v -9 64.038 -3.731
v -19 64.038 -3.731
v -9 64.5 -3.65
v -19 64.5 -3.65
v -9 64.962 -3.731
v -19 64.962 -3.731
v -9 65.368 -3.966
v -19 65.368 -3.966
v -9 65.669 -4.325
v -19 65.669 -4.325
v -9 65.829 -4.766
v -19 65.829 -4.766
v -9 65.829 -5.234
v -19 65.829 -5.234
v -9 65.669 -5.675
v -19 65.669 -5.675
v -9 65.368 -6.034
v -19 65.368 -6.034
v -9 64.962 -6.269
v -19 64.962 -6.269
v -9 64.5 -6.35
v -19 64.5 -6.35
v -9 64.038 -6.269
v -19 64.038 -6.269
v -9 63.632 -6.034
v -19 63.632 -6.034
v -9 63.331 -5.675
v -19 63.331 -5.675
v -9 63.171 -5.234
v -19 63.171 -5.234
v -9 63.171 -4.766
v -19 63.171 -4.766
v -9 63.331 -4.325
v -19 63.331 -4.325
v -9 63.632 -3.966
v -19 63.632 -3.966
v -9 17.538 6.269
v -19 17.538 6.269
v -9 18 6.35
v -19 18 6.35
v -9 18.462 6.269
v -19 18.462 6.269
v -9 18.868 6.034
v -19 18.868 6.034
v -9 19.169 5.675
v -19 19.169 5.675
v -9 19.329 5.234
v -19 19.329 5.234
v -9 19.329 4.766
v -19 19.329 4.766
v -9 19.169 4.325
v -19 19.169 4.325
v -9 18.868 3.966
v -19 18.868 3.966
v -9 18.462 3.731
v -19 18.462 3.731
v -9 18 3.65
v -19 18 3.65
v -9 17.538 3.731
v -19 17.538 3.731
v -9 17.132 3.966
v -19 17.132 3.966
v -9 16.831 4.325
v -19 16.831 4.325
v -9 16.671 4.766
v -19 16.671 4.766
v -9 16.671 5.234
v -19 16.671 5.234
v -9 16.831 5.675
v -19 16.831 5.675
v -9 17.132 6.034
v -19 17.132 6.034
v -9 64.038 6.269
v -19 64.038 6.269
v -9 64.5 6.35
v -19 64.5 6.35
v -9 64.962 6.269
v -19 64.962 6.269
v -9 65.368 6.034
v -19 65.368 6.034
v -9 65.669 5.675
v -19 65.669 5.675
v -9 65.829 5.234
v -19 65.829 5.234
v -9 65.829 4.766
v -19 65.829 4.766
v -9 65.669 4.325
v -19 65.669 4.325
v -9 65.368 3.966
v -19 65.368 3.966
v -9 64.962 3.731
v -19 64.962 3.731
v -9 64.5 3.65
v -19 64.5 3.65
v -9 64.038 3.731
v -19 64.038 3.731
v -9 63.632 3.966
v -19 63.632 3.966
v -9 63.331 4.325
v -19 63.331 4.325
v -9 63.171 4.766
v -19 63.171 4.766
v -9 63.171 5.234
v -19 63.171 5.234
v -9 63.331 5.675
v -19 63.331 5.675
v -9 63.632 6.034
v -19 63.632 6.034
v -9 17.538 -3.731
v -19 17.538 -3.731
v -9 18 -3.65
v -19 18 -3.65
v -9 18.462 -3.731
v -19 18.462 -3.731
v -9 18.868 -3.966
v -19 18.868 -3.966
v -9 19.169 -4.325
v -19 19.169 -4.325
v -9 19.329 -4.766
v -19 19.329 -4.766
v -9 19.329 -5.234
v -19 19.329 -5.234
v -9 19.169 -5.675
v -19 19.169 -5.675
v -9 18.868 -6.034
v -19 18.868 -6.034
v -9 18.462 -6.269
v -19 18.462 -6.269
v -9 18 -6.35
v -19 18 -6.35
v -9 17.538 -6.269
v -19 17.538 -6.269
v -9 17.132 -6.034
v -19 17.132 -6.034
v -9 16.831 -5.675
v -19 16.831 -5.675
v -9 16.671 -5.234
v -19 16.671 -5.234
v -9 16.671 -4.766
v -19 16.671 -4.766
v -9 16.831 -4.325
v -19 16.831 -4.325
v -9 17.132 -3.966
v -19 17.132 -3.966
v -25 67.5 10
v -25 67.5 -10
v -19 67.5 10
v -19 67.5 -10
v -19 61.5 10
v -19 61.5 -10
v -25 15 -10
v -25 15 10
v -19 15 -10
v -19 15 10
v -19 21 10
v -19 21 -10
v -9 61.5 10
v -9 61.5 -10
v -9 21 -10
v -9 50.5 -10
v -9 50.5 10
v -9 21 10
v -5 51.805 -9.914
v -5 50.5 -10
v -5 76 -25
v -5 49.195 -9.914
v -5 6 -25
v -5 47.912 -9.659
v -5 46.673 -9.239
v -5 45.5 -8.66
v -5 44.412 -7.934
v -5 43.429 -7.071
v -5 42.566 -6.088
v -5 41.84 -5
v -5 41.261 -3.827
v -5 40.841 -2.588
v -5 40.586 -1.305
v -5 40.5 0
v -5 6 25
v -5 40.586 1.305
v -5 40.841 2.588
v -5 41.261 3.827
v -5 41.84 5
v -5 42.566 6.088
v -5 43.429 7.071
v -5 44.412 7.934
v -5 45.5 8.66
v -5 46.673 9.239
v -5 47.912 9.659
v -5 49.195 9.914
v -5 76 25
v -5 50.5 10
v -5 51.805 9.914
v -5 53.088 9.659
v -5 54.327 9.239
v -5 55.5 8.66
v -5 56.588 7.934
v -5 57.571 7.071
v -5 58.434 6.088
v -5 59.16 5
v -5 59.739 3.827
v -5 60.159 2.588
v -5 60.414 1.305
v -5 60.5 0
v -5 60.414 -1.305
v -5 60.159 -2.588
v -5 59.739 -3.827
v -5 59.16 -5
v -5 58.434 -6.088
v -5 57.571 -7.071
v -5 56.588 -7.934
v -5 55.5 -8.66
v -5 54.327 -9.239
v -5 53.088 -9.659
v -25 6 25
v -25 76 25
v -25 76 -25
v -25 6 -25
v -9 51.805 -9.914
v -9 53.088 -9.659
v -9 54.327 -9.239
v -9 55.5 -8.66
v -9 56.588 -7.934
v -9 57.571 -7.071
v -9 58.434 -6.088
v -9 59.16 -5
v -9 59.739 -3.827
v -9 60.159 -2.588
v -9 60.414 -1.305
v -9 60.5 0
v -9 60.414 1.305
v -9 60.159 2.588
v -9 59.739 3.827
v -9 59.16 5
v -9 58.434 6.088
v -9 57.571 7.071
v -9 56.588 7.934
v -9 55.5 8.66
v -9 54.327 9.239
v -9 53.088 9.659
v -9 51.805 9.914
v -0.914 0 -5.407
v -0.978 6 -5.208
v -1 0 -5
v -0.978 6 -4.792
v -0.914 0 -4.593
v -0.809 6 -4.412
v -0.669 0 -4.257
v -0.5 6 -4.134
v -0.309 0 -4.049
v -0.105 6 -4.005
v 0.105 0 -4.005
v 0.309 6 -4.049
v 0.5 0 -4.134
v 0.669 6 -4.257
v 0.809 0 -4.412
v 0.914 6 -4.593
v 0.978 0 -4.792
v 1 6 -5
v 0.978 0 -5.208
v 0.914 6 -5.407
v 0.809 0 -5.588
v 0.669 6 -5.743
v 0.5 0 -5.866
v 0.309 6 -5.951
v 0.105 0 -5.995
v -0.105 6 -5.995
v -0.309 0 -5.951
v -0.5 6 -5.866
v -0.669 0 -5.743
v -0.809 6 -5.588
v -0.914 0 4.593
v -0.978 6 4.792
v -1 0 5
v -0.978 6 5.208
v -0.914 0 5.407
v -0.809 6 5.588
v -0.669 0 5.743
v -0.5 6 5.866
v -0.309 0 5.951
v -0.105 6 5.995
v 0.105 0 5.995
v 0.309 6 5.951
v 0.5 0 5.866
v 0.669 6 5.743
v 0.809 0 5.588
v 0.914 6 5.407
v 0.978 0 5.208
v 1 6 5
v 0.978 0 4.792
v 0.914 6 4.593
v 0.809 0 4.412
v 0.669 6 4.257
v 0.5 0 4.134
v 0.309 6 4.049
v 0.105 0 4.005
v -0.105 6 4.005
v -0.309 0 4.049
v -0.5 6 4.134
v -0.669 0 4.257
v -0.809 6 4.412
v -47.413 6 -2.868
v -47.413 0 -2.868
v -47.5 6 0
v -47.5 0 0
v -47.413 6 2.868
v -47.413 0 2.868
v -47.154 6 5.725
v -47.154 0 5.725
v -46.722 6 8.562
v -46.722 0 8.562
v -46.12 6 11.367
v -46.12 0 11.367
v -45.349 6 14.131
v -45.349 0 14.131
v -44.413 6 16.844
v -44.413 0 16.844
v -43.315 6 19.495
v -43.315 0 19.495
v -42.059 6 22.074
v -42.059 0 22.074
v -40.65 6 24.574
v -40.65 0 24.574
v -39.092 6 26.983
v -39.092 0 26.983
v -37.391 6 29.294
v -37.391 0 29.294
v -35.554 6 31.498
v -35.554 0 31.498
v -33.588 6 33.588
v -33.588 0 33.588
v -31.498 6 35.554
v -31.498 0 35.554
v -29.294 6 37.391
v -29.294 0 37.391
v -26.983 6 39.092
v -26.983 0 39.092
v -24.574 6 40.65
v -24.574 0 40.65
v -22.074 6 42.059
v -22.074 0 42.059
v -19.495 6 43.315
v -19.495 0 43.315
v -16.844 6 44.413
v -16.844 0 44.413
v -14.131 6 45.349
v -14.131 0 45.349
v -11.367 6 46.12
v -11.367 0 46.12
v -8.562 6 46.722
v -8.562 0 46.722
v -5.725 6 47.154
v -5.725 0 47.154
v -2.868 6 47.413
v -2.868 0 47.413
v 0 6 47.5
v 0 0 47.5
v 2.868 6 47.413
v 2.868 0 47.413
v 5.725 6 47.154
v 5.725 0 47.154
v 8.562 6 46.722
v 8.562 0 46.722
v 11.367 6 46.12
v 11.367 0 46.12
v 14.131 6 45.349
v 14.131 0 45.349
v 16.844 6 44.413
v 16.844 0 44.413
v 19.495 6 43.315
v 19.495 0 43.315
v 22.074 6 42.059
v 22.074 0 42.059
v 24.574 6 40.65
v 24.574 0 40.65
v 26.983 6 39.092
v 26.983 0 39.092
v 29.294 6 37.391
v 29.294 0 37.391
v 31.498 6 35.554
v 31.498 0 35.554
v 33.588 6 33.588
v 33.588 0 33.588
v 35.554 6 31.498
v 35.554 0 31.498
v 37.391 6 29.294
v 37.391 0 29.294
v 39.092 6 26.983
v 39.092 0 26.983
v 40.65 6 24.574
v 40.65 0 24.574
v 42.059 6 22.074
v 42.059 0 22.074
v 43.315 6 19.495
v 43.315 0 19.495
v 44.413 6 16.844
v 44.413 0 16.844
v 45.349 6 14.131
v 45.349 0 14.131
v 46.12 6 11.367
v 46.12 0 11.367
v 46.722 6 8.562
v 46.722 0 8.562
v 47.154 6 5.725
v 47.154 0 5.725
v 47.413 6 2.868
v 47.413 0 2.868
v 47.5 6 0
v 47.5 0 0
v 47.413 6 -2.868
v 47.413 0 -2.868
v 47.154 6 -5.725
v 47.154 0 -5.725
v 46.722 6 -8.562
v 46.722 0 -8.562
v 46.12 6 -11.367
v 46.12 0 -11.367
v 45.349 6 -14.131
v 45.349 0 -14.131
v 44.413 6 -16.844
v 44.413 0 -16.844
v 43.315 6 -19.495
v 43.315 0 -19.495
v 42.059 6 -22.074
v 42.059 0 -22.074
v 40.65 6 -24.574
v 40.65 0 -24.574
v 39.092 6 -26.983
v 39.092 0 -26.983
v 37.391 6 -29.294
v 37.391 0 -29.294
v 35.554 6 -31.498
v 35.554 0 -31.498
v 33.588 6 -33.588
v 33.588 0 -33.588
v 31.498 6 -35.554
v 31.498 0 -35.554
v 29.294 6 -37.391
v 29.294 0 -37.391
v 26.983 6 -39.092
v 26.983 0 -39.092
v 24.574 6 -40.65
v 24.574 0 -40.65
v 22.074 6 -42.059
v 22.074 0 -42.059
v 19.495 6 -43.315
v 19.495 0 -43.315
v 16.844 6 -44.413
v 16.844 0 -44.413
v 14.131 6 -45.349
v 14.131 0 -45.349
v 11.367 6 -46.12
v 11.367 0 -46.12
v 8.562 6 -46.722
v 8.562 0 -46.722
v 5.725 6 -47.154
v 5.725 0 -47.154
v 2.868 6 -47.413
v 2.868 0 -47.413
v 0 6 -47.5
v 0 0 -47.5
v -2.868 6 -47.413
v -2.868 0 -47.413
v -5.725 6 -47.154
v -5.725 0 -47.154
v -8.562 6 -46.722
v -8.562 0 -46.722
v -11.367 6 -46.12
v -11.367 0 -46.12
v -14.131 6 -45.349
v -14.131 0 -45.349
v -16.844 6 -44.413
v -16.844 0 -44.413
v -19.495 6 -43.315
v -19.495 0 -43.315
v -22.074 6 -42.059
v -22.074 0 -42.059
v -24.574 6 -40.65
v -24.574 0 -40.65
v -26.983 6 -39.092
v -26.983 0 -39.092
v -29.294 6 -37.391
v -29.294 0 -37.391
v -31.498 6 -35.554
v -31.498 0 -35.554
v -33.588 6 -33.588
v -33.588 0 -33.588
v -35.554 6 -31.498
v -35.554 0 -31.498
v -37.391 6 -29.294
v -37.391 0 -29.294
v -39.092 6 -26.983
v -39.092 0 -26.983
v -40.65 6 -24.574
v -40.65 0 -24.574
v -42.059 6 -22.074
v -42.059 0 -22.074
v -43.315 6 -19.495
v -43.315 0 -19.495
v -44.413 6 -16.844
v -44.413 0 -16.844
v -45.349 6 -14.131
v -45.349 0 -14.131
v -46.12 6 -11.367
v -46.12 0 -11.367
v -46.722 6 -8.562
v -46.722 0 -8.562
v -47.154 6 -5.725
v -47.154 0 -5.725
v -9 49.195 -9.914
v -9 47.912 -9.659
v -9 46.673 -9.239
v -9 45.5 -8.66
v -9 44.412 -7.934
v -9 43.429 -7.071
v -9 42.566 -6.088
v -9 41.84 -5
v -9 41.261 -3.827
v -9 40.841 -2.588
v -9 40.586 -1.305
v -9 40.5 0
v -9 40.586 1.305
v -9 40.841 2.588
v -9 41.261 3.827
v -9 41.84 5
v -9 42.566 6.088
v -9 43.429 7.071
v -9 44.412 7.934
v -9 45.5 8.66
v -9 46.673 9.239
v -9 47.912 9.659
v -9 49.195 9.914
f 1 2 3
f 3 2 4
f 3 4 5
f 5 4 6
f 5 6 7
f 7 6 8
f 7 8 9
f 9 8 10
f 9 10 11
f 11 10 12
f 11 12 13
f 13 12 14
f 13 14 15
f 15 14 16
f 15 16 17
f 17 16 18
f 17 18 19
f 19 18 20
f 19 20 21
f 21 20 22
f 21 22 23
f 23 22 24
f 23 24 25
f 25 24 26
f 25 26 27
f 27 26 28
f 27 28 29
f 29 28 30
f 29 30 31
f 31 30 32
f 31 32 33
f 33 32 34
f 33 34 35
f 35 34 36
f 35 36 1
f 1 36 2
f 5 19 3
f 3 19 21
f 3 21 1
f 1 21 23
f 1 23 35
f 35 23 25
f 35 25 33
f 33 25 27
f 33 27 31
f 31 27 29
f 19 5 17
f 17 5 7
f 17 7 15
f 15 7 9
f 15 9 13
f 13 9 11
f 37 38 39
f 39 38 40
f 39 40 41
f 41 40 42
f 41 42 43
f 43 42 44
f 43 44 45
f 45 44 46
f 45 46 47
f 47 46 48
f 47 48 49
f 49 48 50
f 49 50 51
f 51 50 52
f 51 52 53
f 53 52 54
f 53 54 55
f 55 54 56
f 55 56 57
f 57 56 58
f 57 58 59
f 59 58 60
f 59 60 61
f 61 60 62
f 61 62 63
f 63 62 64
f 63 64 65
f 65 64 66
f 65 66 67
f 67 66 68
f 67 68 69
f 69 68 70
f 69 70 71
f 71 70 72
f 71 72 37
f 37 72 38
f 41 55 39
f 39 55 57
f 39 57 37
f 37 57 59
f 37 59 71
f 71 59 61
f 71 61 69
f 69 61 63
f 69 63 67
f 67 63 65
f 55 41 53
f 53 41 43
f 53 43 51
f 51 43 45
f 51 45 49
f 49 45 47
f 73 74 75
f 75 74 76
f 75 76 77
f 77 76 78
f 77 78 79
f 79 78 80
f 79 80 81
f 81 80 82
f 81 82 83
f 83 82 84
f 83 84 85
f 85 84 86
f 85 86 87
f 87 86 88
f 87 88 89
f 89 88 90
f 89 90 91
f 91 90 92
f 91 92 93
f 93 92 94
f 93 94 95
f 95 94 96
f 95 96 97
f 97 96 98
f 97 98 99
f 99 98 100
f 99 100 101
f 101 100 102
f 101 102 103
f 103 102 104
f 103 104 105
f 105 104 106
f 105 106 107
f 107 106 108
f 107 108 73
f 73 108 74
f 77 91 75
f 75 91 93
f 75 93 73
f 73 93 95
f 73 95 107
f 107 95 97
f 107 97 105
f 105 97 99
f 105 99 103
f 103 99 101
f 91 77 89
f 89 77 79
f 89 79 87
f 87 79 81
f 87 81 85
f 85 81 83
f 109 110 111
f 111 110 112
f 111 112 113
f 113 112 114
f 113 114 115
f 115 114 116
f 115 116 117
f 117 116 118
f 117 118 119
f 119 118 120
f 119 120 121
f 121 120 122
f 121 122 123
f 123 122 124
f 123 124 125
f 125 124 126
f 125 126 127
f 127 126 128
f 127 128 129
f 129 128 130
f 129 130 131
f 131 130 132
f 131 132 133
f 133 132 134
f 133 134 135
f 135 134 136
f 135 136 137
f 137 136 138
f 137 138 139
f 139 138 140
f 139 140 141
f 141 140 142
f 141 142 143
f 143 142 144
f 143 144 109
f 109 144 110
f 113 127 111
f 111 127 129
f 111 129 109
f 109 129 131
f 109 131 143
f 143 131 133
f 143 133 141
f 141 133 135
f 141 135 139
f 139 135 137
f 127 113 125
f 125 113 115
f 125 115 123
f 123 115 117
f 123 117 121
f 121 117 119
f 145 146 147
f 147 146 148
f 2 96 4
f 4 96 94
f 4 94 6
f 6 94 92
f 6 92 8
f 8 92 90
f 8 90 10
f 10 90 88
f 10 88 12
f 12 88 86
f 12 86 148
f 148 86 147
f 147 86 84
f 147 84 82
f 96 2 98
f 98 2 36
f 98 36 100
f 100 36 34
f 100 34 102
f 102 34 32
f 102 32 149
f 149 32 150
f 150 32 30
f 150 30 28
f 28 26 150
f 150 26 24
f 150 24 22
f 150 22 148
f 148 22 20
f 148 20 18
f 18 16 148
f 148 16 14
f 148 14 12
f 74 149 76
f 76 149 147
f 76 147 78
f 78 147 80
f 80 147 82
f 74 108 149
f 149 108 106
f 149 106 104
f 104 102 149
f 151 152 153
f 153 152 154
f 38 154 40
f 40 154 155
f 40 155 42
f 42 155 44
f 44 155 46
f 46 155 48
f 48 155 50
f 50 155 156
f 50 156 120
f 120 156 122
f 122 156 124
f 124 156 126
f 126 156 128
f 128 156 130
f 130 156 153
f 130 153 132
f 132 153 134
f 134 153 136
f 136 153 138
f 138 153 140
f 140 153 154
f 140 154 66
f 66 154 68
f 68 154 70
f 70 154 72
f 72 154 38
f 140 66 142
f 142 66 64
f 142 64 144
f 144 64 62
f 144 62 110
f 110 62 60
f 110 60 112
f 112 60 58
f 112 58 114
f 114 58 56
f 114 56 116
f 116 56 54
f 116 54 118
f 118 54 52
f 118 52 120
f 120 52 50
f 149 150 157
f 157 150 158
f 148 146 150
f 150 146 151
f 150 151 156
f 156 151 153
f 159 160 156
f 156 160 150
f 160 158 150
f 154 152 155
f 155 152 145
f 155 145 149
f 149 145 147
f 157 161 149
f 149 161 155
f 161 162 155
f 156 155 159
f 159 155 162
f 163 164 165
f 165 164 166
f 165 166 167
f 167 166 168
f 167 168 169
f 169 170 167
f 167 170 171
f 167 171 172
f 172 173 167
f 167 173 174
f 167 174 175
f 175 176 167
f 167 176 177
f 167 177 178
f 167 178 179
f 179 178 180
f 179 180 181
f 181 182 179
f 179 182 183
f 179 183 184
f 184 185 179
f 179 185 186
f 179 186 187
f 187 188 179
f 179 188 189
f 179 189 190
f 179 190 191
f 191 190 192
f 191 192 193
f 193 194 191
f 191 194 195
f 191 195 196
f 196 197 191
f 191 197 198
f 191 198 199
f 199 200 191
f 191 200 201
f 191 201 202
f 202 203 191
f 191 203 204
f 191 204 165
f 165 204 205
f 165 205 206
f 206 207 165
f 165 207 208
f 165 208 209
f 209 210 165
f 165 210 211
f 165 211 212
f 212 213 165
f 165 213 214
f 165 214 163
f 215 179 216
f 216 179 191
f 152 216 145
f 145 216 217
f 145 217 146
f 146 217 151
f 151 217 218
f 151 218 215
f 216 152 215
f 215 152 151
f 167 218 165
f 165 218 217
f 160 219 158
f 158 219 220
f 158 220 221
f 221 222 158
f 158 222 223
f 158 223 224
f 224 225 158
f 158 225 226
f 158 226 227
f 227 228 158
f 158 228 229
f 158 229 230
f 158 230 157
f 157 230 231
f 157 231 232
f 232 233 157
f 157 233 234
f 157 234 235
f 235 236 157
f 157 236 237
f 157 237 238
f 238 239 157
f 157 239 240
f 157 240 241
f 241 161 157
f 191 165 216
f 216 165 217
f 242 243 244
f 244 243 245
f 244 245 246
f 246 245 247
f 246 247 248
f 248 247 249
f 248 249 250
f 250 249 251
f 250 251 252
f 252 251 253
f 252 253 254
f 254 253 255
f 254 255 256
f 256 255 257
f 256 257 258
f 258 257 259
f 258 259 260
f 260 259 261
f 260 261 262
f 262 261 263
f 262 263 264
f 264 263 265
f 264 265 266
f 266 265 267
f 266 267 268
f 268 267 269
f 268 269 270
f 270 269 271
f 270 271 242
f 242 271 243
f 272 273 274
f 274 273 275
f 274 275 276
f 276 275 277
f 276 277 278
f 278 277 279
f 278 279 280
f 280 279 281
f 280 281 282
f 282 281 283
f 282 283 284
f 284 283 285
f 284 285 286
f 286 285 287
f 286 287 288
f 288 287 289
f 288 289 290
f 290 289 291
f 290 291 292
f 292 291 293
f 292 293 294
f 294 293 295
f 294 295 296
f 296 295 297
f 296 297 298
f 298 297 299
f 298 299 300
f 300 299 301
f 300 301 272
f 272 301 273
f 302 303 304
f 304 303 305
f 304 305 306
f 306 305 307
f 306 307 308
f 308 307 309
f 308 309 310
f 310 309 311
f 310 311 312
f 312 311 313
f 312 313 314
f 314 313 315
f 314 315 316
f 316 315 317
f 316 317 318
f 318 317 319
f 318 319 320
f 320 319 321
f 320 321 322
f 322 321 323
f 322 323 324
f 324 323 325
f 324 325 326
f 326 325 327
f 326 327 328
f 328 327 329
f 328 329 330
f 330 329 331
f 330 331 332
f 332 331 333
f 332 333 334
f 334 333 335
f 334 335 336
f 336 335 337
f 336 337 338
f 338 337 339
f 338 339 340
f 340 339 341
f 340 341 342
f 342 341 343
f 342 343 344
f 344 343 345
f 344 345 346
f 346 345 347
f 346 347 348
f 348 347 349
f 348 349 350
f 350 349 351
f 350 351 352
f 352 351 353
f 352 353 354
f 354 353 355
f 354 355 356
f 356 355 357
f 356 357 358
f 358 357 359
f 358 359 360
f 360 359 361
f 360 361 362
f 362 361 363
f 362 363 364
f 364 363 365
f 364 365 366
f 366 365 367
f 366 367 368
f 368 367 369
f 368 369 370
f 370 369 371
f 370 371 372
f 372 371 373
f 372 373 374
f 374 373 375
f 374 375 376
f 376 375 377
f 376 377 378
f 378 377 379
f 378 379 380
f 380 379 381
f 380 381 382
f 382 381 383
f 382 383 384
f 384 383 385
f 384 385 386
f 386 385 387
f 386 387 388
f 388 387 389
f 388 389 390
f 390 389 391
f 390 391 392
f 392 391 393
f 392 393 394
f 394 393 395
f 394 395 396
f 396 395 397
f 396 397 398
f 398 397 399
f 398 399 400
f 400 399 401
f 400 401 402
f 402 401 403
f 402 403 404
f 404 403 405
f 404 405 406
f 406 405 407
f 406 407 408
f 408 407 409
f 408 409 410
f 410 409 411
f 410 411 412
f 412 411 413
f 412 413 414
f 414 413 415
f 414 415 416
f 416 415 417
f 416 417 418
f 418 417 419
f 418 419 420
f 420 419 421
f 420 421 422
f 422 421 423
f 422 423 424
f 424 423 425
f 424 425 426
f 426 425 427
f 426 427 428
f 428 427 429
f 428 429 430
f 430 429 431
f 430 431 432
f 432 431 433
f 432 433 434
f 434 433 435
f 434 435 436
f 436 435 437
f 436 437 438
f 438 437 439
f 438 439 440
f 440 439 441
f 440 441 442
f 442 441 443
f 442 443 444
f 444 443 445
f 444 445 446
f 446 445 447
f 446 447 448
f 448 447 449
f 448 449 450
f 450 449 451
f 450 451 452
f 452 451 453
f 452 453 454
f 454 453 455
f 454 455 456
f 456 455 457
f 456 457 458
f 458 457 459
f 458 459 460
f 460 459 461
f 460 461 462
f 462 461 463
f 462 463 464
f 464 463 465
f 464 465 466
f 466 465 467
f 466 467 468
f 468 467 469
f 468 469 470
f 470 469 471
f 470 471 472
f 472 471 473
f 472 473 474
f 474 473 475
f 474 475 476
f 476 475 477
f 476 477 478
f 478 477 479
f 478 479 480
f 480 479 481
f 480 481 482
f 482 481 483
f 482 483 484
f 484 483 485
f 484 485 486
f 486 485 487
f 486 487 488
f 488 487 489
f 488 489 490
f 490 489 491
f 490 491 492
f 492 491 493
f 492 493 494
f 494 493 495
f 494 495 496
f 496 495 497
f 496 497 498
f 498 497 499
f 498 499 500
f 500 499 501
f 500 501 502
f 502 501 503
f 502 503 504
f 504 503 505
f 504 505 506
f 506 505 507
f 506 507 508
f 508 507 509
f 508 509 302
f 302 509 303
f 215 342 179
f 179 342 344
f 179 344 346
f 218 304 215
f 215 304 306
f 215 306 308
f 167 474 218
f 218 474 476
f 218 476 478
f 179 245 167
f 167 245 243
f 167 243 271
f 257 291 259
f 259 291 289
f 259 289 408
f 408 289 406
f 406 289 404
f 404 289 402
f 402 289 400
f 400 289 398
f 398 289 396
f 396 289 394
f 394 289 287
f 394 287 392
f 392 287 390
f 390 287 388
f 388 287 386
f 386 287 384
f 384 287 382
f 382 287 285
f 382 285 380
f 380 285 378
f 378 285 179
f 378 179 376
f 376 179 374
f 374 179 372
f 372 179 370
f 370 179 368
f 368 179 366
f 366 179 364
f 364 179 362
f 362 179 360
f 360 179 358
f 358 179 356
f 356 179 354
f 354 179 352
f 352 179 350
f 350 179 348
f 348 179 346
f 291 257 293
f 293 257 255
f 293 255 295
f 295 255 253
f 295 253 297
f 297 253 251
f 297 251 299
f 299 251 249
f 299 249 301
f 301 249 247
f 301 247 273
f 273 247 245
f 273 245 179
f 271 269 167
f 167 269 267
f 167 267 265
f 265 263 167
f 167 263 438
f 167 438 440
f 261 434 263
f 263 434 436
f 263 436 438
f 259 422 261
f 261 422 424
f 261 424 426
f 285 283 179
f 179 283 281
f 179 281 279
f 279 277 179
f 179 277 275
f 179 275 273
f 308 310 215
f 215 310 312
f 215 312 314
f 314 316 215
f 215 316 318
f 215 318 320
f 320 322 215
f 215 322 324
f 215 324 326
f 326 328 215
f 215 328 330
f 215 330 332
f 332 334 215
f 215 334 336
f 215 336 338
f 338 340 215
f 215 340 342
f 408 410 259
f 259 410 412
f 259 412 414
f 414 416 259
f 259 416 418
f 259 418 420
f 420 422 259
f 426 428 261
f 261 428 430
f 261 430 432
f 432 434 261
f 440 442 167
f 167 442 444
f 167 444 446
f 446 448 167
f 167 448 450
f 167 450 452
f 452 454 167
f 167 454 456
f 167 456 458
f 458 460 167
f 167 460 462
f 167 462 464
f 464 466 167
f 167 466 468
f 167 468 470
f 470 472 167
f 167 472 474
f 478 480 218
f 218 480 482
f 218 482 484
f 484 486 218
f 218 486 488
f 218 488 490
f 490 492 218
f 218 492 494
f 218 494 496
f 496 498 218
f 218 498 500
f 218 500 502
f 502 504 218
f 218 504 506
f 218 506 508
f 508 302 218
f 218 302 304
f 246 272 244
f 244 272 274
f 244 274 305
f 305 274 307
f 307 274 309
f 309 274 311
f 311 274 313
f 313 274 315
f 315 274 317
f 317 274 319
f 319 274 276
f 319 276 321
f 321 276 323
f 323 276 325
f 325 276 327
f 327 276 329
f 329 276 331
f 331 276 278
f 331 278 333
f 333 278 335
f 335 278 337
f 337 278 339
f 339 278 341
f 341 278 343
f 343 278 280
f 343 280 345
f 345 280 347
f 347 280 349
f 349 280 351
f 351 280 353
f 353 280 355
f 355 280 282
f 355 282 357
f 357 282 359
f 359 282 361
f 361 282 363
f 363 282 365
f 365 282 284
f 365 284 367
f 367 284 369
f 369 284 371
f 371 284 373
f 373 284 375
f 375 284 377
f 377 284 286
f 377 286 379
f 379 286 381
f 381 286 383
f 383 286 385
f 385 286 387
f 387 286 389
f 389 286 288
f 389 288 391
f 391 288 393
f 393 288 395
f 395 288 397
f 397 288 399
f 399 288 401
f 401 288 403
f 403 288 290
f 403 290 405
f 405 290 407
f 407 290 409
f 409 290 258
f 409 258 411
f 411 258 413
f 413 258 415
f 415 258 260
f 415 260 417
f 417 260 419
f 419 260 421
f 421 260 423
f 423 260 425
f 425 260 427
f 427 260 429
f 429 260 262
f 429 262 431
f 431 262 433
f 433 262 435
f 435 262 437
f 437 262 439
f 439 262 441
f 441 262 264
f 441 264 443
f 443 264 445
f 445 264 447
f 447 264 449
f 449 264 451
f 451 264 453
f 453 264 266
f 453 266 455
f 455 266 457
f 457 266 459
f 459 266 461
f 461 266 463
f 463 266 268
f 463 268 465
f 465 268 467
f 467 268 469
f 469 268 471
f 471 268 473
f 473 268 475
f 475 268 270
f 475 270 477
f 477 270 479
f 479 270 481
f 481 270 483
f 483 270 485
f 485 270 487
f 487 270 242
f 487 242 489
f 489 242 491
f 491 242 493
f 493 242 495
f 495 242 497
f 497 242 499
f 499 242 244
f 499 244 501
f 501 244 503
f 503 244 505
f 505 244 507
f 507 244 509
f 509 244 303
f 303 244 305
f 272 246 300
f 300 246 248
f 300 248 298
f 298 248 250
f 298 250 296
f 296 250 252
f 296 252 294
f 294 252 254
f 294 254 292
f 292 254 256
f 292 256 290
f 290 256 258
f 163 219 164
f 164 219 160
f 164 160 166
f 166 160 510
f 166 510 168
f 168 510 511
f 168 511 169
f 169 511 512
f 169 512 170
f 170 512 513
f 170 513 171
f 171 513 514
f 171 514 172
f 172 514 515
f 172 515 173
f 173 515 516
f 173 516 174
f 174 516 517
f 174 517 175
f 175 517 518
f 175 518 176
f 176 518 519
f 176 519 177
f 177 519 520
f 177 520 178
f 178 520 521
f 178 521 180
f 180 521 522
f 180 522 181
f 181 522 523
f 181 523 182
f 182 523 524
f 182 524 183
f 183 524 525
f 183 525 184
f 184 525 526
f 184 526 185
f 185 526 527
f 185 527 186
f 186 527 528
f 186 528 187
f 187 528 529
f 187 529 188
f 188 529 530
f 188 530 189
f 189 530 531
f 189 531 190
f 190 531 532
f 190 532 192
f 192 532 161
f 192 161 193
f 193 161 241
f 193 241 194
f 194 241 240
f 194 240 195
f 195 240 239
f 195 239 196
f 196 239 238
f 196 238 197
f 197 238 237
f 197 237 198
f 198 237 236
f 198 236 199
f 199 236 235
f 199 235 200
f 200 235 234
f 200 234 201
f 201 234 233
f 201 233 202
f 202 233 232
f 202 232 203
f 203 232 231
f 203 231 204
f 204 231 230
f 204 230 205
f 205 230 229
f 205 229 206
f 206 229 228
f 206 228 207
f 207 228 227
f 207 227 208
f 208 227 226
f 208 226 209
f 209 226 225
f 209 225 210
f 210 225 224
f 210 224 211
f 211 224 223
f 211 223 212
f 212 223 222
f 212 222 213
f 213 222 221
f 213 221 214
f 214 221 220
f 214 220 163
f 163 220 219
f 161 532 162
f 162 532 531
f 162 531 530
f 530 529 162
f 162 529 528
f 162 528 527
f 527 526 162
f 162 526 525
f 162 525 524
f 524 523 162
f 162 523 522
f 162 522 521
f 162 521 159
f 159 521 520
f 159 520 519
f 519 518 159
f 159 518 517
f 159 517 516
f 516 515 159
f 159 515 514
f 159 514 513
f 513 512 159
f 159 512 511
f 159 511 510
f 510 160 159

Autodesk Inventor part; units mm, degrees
ref_plane "YZ Plane" through (0, 0, 0) normal (1, 0, 0) x (0, 1, 0)
ref_plane "XZ Plane" through (0, 0, 0) normal (0, 1, 0) x (-1, 0, 0)
ref_plane "XY Plane" through (0, 0, 0) normal (0, 0, 1) x (1, 0, 0)
sketch "Sketch1" plane through (0, 0, 0) normal (0, 1, 0) x (-1, 0, 0)
  circle A0 centre (0, 0) radius 47.5
  dimension "d0" = 95
extrude "Extrusion1" add sketch "Sketch1" along normal blind 6
sketch "Sketch2" plane through (0, 6, 0) normal (0, 1, 0) x (1, 0, 0)
  circle A0 centre (0, 0) radius 10
  circle A1 centre (0, 5) radius 1
  circle A2 centre (0, -5) radius 1
  dimension "d3" = 20
  dimension "d4" = 2
  dimension "d5" = 2
extrude "Extrusion2" cut sketch "Sketch2" against normal blind 23.4625 contours A1 | A2
sketch "Sketch3" plane through (0, 0, 0) normal (0, -1, 0) x (1, 0, 0)
  circle A0 centre (0, 0) radius 10
sketch "Sketch4" plane through (0, 6, 0) normal (0, 1, 0) x (1, 0, 0)
  line L0 (0, 0) -> (-10, 0)
  line L1 (-10, 0) -> (-10, 25)
  line L2 (-10, 25) -> (0, 25)
  line L3 (0, 25) -> (0, 0)
  line L4 (0, 0) -> (-5, 0)
  line L5 (-5, 0) -> (-5, 25)
  line L6 (-5, 25) -> (0, 25)
  line L7 (0, 25) -> (0, 0)
  line L8 (-5, 25) -> (-20, 25)
  line L9 (-20, 25) -> (-20, -25)
  line L10 (-20, -25) -> (-5, -25)
  line L11 (-5, -25) -> (-5, 25)
  line L12 (-5, 25) -> (-25, 25)
  line L13 (-25, 25) -> (-25, -25)
  line L14 (-25, -25) -> (-5, -25)
  line L15 (-5, -25) -> (-5, 25)
  dimension "d9" = 10
  dimension "d10" = 25
  dimension "d11" = 15
  dimension "d12" = 50
  dimension "d13" = 20
extrude "Extrusion3" add sketch "Sketch4" along normal blind 70 contours L11 L10 L9 L8 L1 L0 | L0 L1 L2 L5 | L14 L13 L12 L9
sketch "Sketch5" plane through (-25, 6, -25) normal (-1, 0, 0) x (0, 0, 1)
  line L0 (0, 0) -> (0, 70) projected
  line L1 (50, 0) -> (50, 70) projected
  line L2 (0, 70) -> (50, 70)
  line L3 (50, 70) -> (50, 0)
  line L4 (50, 0) -> (0, 0)
  line L5 (0, 0) -> (0, 70)
  line L6 (50, 70) -> (0, 70) projected
  line L7 (72.5, 0) -> (-22.5, 0) projected
  line L8 (0, 70) -> (25, 70)
  line L9 (25, 70) -> (25, 0)
  line L10 (25, 0) -> (0, 0)
  line L11 (0, 0) -> (0, 70)
  line L12 (25, 35) -> (15, 35)
  line L13 (15, 35) -> (15, 15)
  line L14 (15, 15) -> (25, 15)
  line L15 (25, 15) -> (25, 35)
  line L16 (15, 35) -> (25, 35)
  line L17 (25, 35) -> (25, 55)
  line L18 (25, 55) -> (15, 55)
  line L19 (15, 55) -> (15, 35)
  line L20 (15, 15) -> (35, 15)
  line L21 (35, 15) -> (35, 55)
  line L22 (35, 55) -> (15, 55)
  line L23 (15, 55) -> (15, 15)
  line L24 (15, 15) -> (35, 15)
  line L25 (35, 15) -> (35, 55.5)
  line L26 (35, 55.5) -> (15, 55.5)
  line L27 (15, 55.5) -> (15, 15)
  point P0 (25, -6)
  dimension "d16" = 10
  dimension "d17" = 20
  dimension "d18" = 20
  dimension "d19" = 20
  dimension "d20" = 40.5
extrude "Extrusion4" cut sketch "Sketch5" against normal blind 16 contours L14 L13 L12 L9 | L9 L22 L21 L20 | L26 L25 L22 L9 | L9 L18 L27 L26 | L12 L19 L18 L9
sketch "Sketch6" plane through (-25, 6, -25) normal (-1, 0, 0) x (0, 0, 1)
  line L0 (35, 15) -> (15, 15) projected
  line L1 (15, 15) -> (35, 15)
  line L2 (35, 15) -> (35, 9)
  line L3 (35, 9) -> (15, 9)
  line L4 (15, 9) -> (15, 15)
  line L5 (15, 55.5) -> (35, 55.5) projected
  line L6 (15, 55.5) -> (35, 55.5)
  line L7 (35, 55.5) -> (35, 61.5)
  line L8 (35, 61.5) -> (15, 61.5)
  line L9 (15, 61.5) -> (15, 55.5)
  point P0 (25, -6)
  dimension "d23" = 6
  dimension "d24" = 6
extrude "Extrusion5" cut sketch "Sketch6" against normal blind 6
sketch "Sketch7" plane through (-19, 6, -25) normal (-1, 0, 0) x (0, 0, 1)
  line L0 (35, 9) -> (15, 9) projected
  line L1 (35, 61.5) -> (35, 9) projected
  line L2 (15, 9) -> (35, 9)
  line L3 (35, 9) -> (35, 11.6)
  line L4 (35, 11.6) -> (15, 11.6)
  line L5 (15, 11.6) -> (15, 9)
  line L6 (15, 55.5) -> (15, 61.5) projected
  line L7 (35, 61.5) -> (35, 55.5) projected
  line L8 (15, 61.5) -> (35, 61.5)
  line L9 (35, 61.5) -> (35, 58.5)
  line L10 (35, 58.5) -> (15, 58.5)
  line L11 (15, 58.5) -> (15, 61.5)
  line L12 (15, 9) -> (15, 61.5) projected
  line L13 (15, 9) -> (35, 9)
  line L14 (35, 9) -> (35, 12)
  line L15 (35, 12) -> (15, 12)
  line L16 (15, 12) -> (15, 9)
  line L17 (35, 15) -> (15, 15) projected
  line L18 (25, 15) -> (20, 15)
  line L19 (20, 15) -> (20, 12)
  line L20 (20, 12) -> (25, 12)
  line L21 (25, 12) -> (25, 15)
  line L22 (25, 15) -> (30, 15)
  line L23 (30, 15) -> (30, 12)
  line L24 (30, 12) -> (25, 12)
  line L25 (25, 12) -> (25, 15)
  line L26 (15, 61.5) -> (35, 61.5) projected
  line L27 (25, 58.5) -> (20, 58.5)
  line L28 (20, 58.5) -> (20, 61.5)
  line L29 (20, 61.5) -> (25, 61.5)
  line L30 (25, 61.5) -> (25, 58.5)
  line L31 (25, 58.5) -> (30, 58.5)
  line L32 (30, 58.5) -> (30, 61.5)
  line L33 (30, 61.5) -> (25, 61.5)
  line L34 (25, 61.5) -> (25, 58.5)
  circle A0 centre (20, 12) radius 1.35
  circle A1 centre (30, 12) radius 1.35
  circle A2 centre (20, 58.5) radius 1.35
  circle A3 centre (30, 58.5) radius 1.35
  point P0 (25, -6)
  dimension "d27" = 2.6
  dimension "d28" = 3
  dimension "d29" = 3
  dimension "d30" = 5
  dimension "d31" = 5
  dimension "d32" = 2.7
  dimension "d33" = 2.7
  dimension "d34" = 2.7
  dimension "d35" = 2.7
extrude "Extrusion6" cut sketch "Sketch7" against normal blind 10 contours A1 L4 | L4 A1 L15 | A0 L15 L4 | L4 A0 | L15 L23 A1 | A0 L19 L15 | L15 A1 L23 | L15 L19 A0 | A3 L10 | L10 L32 A3 | A2 L28 L10 | L10 A2 | L10 A3 L32 | L28 A2 L10
thread "Thread1" size "M3x0.5" class "6H" standard "ANSI Metric M Profile" full length
thread "Thread2" size "M3x0.5" class "6H" standard "ANSI Metric M Profile" full length
thread "Thread3" size "M3x0.5" class "6H" standard "ANSI Metric M Profile" full length
thread "Thread4" size "M3x0.5" class "6H" standard "ANSI Metric M Profile" full length
sketch "Sketch8" plane through (-9, 6, -25) normal (-1, 0, 0) x (0, 0, 1)
  line L0 (15, 9) -> (15, 61.5) projected
  line L1 (35, 55.5) -> (35, 15) projected
  line L2 (15, 61.5) -> (35, 61.5)
  line L3 (35, 61.5) -> (35, 44.5)
  line L4 (35, 44.5) -> (15, 44.5)
  line L5 (15, 44.5) -> (15, 61.5)
  circle A0 centre (25, 44.5) radius 10
  point P0 (25, -6)
  dimension "d46" = 17
  dimension "d47" = 20
extrude "Extrusion7" cut sketch "Sketch8" against normal blind 15.4 contours A0 L4 | L4 A0
properties part number "NBase top"
